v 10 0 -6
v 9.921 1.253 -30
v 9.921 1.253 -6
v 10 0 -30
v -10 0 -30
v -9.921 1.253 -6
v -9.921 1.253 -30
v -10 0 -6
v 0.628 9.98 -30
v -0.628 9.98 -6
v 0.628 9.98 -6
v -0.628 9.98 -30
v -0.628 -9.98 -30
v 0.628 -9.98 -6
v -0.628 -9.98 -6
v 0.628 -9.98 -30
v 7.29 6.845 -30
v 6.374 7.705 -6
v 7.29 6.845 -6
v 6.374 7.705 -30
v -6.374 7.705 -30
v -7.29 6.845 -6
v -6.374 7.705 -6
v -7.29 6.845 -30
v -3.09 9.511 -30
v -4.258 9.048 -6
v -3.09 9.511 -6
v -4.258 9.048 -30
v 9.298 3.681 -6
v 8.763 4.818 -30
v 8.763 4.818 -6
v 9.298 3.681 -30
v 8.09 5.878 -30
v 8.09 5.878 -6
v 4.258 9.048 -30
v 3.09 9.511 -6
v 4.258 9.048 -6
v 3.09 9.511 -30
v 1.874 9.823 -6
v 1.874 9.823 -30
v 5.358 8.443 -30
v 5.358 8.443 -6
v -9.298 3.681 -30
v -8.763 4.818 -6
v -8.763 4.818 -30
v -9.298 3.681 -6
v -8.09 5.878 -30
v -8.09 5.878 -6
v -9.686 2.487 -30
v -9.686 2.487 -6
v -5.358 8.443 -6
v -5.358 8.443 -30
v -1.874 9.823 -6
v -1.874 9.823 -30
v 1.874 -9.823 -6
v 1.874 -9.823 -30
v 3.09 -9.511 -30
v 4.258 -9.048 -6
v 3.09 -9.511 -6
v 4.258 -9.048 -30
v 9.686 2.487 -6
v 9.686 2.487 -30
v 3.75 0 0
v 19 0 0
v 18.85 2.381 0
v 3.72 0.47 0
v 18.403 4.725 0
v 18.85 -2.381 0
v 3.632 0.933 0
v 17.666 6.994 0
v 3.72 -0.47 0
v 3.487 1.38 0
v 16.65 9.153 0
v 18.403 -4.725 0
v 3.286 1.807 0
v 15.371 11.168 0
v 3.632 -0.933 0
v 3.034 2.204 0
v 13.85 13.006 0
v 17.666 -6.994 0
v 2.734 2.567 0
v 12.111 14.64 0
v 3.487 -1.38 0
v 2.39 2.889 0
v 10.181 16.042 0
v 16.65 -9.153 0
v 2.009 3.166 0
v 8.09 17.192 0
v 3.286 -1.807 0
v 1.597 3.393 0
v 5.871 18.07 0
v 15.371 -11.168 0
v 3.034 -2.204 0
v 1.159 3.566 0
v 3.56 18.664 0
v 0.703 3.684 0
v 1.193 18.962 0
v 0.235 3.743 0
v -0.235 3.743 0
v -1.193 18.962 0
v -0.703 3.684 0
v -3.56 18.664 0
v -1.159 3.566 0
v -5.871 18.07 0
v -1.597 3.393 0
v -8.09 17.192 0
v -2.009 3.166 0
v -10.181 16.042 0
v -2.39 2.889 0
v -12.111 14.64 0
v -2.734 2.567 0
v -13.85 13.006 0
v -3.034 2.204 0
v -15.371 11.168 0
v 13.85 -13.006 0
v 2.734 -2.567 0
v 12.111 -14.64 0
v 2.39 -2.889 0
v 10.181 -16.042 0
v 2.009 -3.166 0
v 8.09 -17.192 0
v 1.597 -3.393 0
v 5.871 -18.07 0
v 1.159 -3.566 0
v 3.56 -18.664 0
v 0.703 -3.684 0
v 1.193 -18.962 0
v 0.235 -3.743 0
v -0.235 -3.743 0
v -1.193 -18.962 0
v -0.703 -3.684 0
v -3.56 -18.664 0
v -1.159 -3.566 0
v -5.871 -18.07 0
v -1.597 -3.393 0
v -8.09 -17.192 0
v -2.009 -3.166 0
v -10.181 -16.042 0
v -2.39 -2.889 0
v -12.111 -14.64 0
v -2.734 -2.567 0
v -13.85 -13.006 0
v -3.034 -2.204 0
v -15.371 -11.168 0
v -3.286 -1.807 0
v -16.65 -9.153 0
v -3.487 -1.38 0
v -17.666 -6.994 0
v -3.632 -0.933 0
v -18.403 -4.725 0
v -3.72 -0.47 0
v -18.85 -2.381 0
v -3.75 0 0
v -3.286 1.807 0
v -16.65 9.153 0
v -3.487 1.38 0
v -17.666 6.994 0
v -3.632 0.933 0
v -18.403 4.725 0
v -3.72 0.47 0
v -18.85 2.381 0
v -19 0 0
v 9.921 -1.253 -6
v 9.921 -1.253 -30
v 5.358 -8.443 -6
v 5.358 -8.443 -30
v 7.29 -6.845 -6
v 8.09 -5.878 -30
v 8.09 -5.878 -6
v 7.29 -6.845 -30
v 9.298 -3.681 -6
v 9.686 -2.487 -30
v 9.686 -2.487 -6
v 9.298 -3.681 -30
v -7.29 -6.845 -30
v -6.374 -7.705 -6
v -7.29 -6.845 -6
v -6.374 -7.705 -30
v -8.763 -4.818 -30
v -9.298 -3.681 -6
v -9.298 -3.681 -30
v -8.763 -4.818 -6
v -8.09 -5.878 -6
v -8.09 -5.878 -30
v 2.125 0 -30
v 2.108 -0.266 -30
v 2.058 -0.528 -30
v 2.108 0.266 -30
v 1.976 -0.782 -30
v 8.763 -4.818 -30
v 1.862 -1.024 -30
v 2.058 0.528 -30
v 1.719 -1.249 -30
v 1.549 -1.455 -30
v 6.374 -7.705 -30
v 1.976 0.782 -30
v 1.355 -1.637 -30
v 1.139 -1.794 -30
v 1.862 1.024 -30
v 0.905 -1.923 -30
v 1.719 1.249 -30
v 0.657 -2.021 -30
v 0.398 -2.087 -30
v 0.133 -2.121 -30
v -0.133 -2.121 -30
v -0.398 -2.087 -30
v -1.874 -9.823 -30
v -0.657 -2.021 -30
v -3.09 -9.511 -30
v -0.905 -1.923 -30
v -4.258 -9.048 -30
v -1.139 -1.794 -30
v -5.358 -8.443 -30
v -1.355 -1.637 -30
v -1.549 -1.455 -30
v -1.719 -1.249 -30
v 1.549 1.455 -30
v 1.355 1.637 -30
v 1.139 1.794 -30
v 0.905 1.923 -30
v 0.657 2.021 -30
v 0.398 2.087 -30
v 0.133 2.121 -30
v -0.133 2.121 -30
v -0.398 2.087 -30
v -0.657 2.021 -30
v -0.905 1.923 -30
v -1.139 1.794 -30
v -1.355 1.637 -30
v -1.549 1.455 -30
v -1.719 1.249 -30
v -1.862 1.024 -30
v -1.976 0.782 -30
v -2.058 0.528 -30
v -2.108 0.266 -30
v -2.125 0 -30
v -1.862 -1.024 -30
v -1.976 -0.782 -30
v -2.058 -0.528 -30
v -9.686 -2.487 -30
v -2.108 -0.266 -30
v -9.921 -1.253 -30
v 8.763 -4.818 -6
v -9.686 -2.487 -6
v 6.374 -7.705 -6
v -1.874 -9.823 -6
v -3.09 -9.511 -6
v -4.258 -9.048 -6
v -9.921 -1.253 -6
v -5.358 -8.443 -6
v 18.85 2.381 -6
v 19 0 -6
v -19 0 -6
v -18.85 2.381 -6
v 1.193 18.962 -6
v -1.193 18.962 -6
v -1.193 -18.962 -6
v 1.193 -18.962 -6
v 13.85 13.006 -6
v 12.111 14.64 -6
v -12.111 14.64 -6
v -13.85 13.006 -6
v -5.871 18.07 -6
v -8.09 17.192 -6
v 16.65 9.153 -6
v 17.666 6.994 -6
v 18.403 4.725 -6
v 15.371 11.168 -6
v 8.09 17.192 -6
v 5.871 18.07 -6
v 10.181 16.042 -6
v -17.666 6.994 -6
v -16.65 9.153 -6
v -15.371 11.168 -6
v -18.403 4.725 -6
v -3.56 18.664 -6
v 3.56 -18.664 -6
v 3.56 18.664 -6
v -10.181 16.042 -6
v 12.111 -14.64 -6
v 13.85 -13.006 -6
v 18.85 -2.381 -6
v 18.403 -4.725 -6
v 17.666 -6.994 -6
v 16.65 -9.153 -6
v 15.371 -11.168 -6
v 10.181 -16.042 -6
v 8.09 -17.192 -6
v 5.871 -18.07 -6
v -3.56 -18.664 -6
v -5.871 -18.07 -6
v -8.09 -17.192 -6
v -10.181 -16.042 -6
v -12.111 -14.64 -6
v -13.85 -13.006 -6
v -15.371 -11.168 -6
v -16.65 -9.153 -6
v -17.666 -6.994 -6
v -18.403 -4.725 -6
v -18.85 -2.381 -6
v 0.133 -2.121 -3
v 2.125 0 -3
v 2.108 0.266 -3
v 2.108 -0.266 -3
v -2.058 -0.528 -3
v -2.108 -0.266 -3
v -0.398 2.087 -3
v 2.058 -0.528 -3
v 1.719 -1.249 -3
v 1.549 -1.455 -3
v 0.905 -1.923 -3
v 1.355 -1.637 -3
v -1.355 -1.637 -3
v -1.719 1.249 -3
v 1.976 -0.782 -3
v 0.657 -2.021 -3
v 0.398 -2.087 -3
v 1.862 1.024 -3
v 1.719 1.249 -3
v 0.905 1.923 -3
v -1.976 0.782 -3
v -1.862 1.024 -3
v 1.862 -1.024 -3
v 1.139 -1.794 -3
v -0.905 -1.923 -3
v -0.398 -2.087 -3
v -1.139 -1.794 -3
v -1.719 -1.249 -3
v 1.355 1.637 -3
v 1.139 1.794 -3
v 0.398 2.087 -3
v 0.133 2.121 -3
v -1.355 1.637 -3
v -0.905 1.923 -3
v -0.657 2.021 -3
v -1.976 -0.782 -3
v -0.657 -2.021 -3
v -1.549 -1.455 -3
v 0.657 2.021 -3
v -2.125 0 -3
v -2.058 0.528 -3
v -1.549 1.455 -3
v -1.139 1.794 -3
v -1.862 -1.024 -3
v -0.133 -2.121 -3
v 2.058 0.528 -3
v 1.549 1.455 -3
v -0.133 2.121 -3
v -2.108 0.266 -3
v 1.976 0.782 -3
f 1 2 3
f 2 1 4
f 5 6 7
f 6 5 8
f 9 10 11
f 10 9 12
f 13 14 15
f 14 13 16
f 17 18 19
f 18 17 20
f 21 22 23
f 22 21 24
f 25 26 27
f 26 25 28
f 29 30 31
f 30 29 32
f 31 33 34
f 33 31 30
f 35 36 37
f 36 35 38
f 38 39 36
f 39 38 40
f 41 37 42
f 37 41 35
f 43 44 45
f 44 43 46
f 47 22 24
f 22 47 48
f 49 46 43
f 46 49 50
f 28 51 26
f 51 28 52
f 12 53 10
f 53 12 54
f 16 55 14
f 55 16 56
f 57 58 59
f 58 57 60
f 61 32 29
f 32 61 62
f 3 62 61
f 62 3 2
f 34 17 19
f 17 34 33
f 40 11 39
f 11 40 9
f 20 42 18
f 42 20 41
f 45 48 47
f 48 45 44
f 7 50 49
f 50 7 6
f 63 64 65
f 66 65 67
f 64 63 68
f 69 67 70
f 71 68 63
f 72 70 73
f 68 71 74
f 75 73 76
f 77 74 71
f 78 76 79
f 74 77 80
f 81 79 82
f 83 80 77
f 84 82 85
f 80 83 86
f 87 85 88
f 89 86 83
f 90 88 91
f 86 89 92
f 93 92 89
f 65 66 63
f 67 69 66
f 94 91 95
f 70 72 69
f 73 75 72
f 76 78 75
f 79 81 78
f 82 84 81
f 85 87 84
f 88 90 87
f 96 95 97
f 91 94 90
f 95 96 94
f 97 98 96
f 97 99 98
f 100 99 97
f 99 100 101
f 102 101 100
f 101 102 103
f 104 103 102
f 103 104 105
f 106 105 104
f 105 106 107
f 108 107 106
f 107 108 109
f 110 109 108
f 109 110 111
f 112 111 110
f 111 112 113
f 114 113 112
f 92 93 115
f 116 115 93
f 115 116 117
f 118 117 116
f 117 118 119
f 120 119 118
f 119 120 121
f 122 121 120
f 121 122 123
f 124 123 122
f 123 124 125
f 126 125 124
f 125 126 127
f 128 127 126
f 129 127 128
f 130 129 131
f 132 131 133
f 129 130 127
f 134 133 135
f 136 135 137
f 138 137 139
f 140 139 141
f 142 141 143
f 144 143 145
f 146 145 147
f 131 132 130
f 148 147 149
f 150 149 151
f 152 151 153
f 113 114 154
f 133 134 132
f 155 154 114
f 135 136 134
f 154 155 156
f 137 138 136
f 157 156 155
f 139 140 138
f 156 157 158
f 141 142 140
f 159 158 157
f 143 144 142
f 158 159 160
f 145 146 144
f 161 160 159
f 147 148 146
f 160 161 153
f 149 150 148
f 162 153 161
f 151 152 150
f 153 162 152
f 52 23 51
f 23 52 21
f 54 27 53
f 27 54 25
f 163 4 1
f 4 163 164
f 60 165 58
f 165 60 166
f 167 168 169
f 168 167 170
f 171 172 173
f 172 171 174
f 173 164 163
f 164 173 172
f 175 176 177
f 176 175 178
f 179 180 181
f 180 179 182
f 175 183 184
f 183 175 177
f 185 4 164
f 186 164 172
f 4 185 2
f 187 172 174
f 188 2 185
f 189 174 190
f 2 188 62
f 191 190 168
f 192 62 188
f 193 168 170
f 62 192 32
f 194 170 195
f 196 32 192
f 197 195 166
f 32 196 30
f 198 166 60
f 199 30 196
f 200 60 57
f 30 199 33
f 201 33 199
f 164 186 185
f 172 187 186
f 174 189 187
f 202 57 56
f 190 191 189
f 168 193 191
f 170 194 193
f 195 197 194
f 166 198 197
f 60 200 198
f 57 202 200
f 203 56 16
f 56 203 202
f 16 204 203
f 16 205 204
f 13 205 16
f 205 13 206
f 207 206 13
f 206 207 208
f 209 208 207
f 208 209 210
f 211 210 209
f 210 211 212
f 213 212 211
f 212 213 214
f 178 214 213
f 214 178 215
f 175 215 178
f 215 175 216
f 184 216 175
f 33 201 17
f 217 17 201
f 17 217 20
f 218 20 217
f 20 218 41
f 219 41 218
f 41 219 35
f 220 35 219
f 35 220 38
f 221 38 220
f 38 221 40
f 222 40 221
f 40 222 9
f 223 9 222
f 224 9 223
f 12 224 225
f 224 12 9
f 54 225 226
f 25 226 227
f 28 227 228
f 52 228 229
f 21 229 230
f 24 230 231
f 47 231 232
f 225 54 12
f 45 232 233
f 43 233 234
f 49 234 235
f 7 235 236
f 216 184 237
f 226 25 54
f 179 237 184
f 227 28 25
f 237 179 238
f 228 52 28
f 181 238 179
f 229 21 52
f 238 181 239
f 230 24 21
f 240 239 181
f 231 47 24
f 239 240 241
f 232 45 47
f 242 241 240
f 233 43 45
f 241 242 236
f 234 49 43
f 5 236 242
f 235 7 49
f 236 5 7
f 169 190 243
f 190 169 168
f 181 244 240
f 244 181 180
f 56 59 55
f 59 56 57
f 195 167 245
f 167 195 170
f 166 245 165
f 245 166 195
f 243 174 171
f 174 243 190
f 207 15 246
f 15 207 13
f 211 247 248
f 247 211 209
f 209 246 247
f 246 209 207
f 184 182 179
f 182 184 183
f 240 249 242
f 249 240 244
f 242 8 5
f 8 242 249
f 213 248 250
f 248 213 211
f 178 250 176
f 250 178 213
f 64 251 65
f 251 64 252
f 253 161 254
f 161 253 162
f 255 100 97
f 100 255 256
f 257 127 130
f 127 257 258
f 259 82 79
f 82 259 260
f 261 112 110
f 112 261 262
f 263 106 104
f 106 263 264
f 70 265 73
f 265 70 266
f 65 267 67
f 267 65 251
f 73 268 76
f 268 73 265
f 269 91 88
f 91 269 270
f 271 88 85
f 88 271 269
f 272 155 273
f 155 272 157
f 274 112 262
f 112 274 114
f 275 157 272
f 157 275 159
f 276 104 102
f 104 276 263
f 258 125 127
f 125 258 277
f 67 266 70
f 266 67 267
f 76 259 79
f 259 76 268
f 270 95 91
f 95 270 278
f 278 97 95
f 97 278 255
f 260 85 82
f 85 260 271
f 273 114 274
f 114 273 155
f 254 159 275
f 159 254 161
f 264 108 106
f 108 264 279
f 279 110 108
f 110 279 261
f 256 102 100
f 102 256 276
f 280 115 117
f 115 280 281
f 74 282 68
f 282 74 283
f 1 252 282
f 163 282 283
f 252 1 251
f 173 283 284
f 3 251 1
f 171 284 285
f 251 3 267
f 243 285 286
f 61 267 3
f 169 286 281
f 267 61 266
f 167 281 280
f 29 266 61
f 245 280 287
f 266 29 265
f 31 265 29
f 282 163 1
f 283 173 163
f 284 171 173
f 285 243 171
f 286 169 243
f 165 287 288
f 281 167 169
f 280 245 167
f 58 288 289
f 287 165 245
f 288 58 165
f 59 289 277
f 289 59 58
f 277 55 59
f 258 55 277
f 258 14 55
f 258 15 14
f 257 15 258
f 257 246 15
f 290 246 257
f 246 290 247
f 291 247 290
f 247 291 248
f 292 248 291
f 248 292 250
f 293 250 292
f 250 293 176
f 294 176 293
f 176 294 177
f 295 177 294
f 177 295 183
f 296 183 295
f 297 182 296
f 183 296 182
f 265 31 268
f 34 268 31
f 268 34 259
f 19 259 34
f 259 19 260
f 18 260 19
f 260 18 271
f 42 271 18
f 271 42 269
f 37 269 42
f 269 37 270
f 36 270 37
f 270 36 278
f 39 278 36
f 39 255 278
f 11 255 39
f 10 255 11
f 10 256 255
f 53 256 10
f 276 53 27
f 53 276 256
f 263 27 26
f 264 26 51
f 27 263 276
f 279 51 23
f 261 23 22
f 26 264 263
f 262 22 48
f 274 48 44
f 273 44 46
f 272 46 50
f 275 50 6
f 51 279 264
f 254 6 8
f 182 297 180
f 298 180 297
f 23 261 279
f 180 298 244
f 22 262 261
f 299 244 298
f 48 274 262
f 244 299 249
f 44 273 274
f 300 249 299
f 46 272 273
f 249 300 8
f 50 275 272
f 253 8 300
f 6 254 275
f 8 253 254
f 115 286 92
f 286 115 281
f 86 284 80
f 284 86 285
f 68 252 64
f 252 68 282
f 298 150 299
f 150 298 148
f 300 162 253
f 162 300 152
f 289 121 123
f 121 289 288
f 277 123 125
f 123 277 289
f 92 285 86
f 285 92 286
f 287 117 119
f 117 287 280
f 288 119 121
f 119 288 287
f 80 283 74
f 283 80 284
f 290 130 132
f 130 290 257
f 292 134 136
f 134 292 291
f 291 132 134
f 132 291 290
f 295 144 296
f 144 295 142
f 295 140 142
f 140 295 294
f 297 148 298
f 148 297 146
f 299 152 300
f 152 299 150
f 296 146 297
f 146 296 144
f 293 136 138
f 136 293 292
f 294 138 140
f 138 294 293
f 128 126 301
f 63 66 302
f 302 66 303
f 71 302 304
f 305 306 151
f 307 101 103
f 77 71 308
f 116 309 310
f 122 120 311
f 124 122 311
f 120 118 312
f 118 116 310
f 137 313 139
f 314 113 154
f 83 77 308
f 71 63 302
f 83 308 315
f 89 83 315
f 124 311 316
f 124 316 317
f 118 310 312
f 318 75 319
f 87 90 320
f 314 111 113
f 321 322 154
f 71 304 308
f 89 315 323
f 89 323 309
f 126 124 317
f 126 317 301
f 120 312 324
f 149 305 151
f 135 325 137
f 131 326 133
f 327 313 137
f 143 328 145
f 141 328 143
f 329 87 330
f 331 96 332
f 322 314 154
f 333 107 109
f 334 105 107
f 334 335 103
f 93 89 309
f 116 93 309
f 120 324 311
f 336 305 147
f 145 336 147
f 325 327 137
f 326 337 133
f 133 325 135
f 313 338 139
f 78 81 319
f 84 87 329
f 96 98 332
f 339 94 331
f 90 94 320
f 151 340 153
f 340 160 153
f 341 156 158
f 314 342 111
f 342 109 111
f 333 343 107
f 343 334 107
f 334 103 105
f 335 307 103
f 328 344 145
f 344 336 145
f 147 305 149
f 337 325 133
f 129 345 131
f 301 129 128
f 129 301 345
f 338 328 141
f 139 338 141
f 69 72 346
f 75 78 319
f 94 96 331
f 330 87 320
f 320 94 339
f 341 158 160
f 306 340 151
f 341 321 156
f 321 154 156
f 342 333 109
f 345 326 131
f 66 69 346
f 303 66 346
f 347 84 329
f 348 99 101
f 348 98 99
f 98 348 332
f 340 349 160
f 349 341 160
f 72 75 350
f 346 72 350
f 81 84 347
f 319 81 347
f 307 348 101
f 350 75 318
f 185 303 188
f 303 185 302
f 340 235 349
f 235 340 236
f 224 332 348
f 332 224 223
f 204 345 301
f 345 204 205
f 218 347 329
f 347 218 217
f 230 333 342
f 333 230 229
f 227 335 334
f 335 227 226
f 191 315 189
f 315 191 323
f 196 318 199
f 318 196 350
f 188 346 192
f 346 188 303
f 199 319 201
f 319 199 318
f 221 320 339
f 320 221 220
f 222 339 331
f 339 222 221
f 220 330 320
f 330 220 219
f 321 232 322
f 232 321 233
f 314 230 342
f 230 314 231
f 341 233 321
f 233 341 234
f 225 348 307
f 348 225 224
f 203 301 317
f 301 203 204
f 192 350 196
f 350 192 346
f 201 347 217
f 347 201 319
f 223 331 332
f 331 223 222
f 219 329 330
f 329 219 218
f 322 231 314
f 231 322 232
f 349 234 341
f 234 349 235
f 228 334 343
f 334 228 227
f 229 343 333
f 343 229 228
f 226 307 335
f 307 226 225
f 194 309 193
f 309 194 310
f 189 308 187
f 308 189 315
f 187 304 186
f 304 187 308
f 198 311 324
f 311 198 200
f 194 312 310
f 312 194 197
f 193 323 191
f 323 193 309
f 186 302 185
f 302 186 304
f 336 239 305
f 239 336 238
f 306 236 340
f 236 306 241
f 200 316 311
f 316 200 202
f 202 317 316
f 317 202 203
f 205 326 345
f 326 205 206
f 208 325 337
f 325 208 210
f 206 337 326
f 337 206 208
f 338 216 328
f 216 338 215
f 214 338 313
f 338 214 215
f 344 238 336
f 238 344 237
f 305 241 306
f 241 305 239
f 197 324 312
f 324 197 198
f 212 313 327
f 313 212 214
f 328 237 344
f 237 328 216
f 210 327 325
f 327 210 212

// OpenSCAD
$fn = 50;


difference() {
	union() {
		translate(v = [0, 0, -30.0000000000]) {
			cylinder(h = 30, r = 10.0000000000);
		}
		translate(v = [0, 0, -6.0000000000]) {
			cylinder(h = 6, r = 19.0000000000);
		}
	}
	union() {
		translate(v = [0, 0, 0]) {
			rotate(a = [0, 0, 0]) {
				difference() {
					union() {
						#translate(v = [0, 0, -30.0000000000]) {
							cylinder(h = 30, r = 2.0000000000);
						}
						#translate(v = [0, 0, -3]) {
							cylinder(h = 3, r1 = 2.1250000000, r2 = 3.7500000000);
						}
						#translate(v = [0, 0, -30.0000000000]) {
							cylinder(h = 30, r = 2.1250000000);
						}
						#translate(v = [0, 0, -30.0000000000]) {
							cylinder(h = 30, r = 2.0000000000);
						}
					}
					union();
				}
			}
		}
	}
}
